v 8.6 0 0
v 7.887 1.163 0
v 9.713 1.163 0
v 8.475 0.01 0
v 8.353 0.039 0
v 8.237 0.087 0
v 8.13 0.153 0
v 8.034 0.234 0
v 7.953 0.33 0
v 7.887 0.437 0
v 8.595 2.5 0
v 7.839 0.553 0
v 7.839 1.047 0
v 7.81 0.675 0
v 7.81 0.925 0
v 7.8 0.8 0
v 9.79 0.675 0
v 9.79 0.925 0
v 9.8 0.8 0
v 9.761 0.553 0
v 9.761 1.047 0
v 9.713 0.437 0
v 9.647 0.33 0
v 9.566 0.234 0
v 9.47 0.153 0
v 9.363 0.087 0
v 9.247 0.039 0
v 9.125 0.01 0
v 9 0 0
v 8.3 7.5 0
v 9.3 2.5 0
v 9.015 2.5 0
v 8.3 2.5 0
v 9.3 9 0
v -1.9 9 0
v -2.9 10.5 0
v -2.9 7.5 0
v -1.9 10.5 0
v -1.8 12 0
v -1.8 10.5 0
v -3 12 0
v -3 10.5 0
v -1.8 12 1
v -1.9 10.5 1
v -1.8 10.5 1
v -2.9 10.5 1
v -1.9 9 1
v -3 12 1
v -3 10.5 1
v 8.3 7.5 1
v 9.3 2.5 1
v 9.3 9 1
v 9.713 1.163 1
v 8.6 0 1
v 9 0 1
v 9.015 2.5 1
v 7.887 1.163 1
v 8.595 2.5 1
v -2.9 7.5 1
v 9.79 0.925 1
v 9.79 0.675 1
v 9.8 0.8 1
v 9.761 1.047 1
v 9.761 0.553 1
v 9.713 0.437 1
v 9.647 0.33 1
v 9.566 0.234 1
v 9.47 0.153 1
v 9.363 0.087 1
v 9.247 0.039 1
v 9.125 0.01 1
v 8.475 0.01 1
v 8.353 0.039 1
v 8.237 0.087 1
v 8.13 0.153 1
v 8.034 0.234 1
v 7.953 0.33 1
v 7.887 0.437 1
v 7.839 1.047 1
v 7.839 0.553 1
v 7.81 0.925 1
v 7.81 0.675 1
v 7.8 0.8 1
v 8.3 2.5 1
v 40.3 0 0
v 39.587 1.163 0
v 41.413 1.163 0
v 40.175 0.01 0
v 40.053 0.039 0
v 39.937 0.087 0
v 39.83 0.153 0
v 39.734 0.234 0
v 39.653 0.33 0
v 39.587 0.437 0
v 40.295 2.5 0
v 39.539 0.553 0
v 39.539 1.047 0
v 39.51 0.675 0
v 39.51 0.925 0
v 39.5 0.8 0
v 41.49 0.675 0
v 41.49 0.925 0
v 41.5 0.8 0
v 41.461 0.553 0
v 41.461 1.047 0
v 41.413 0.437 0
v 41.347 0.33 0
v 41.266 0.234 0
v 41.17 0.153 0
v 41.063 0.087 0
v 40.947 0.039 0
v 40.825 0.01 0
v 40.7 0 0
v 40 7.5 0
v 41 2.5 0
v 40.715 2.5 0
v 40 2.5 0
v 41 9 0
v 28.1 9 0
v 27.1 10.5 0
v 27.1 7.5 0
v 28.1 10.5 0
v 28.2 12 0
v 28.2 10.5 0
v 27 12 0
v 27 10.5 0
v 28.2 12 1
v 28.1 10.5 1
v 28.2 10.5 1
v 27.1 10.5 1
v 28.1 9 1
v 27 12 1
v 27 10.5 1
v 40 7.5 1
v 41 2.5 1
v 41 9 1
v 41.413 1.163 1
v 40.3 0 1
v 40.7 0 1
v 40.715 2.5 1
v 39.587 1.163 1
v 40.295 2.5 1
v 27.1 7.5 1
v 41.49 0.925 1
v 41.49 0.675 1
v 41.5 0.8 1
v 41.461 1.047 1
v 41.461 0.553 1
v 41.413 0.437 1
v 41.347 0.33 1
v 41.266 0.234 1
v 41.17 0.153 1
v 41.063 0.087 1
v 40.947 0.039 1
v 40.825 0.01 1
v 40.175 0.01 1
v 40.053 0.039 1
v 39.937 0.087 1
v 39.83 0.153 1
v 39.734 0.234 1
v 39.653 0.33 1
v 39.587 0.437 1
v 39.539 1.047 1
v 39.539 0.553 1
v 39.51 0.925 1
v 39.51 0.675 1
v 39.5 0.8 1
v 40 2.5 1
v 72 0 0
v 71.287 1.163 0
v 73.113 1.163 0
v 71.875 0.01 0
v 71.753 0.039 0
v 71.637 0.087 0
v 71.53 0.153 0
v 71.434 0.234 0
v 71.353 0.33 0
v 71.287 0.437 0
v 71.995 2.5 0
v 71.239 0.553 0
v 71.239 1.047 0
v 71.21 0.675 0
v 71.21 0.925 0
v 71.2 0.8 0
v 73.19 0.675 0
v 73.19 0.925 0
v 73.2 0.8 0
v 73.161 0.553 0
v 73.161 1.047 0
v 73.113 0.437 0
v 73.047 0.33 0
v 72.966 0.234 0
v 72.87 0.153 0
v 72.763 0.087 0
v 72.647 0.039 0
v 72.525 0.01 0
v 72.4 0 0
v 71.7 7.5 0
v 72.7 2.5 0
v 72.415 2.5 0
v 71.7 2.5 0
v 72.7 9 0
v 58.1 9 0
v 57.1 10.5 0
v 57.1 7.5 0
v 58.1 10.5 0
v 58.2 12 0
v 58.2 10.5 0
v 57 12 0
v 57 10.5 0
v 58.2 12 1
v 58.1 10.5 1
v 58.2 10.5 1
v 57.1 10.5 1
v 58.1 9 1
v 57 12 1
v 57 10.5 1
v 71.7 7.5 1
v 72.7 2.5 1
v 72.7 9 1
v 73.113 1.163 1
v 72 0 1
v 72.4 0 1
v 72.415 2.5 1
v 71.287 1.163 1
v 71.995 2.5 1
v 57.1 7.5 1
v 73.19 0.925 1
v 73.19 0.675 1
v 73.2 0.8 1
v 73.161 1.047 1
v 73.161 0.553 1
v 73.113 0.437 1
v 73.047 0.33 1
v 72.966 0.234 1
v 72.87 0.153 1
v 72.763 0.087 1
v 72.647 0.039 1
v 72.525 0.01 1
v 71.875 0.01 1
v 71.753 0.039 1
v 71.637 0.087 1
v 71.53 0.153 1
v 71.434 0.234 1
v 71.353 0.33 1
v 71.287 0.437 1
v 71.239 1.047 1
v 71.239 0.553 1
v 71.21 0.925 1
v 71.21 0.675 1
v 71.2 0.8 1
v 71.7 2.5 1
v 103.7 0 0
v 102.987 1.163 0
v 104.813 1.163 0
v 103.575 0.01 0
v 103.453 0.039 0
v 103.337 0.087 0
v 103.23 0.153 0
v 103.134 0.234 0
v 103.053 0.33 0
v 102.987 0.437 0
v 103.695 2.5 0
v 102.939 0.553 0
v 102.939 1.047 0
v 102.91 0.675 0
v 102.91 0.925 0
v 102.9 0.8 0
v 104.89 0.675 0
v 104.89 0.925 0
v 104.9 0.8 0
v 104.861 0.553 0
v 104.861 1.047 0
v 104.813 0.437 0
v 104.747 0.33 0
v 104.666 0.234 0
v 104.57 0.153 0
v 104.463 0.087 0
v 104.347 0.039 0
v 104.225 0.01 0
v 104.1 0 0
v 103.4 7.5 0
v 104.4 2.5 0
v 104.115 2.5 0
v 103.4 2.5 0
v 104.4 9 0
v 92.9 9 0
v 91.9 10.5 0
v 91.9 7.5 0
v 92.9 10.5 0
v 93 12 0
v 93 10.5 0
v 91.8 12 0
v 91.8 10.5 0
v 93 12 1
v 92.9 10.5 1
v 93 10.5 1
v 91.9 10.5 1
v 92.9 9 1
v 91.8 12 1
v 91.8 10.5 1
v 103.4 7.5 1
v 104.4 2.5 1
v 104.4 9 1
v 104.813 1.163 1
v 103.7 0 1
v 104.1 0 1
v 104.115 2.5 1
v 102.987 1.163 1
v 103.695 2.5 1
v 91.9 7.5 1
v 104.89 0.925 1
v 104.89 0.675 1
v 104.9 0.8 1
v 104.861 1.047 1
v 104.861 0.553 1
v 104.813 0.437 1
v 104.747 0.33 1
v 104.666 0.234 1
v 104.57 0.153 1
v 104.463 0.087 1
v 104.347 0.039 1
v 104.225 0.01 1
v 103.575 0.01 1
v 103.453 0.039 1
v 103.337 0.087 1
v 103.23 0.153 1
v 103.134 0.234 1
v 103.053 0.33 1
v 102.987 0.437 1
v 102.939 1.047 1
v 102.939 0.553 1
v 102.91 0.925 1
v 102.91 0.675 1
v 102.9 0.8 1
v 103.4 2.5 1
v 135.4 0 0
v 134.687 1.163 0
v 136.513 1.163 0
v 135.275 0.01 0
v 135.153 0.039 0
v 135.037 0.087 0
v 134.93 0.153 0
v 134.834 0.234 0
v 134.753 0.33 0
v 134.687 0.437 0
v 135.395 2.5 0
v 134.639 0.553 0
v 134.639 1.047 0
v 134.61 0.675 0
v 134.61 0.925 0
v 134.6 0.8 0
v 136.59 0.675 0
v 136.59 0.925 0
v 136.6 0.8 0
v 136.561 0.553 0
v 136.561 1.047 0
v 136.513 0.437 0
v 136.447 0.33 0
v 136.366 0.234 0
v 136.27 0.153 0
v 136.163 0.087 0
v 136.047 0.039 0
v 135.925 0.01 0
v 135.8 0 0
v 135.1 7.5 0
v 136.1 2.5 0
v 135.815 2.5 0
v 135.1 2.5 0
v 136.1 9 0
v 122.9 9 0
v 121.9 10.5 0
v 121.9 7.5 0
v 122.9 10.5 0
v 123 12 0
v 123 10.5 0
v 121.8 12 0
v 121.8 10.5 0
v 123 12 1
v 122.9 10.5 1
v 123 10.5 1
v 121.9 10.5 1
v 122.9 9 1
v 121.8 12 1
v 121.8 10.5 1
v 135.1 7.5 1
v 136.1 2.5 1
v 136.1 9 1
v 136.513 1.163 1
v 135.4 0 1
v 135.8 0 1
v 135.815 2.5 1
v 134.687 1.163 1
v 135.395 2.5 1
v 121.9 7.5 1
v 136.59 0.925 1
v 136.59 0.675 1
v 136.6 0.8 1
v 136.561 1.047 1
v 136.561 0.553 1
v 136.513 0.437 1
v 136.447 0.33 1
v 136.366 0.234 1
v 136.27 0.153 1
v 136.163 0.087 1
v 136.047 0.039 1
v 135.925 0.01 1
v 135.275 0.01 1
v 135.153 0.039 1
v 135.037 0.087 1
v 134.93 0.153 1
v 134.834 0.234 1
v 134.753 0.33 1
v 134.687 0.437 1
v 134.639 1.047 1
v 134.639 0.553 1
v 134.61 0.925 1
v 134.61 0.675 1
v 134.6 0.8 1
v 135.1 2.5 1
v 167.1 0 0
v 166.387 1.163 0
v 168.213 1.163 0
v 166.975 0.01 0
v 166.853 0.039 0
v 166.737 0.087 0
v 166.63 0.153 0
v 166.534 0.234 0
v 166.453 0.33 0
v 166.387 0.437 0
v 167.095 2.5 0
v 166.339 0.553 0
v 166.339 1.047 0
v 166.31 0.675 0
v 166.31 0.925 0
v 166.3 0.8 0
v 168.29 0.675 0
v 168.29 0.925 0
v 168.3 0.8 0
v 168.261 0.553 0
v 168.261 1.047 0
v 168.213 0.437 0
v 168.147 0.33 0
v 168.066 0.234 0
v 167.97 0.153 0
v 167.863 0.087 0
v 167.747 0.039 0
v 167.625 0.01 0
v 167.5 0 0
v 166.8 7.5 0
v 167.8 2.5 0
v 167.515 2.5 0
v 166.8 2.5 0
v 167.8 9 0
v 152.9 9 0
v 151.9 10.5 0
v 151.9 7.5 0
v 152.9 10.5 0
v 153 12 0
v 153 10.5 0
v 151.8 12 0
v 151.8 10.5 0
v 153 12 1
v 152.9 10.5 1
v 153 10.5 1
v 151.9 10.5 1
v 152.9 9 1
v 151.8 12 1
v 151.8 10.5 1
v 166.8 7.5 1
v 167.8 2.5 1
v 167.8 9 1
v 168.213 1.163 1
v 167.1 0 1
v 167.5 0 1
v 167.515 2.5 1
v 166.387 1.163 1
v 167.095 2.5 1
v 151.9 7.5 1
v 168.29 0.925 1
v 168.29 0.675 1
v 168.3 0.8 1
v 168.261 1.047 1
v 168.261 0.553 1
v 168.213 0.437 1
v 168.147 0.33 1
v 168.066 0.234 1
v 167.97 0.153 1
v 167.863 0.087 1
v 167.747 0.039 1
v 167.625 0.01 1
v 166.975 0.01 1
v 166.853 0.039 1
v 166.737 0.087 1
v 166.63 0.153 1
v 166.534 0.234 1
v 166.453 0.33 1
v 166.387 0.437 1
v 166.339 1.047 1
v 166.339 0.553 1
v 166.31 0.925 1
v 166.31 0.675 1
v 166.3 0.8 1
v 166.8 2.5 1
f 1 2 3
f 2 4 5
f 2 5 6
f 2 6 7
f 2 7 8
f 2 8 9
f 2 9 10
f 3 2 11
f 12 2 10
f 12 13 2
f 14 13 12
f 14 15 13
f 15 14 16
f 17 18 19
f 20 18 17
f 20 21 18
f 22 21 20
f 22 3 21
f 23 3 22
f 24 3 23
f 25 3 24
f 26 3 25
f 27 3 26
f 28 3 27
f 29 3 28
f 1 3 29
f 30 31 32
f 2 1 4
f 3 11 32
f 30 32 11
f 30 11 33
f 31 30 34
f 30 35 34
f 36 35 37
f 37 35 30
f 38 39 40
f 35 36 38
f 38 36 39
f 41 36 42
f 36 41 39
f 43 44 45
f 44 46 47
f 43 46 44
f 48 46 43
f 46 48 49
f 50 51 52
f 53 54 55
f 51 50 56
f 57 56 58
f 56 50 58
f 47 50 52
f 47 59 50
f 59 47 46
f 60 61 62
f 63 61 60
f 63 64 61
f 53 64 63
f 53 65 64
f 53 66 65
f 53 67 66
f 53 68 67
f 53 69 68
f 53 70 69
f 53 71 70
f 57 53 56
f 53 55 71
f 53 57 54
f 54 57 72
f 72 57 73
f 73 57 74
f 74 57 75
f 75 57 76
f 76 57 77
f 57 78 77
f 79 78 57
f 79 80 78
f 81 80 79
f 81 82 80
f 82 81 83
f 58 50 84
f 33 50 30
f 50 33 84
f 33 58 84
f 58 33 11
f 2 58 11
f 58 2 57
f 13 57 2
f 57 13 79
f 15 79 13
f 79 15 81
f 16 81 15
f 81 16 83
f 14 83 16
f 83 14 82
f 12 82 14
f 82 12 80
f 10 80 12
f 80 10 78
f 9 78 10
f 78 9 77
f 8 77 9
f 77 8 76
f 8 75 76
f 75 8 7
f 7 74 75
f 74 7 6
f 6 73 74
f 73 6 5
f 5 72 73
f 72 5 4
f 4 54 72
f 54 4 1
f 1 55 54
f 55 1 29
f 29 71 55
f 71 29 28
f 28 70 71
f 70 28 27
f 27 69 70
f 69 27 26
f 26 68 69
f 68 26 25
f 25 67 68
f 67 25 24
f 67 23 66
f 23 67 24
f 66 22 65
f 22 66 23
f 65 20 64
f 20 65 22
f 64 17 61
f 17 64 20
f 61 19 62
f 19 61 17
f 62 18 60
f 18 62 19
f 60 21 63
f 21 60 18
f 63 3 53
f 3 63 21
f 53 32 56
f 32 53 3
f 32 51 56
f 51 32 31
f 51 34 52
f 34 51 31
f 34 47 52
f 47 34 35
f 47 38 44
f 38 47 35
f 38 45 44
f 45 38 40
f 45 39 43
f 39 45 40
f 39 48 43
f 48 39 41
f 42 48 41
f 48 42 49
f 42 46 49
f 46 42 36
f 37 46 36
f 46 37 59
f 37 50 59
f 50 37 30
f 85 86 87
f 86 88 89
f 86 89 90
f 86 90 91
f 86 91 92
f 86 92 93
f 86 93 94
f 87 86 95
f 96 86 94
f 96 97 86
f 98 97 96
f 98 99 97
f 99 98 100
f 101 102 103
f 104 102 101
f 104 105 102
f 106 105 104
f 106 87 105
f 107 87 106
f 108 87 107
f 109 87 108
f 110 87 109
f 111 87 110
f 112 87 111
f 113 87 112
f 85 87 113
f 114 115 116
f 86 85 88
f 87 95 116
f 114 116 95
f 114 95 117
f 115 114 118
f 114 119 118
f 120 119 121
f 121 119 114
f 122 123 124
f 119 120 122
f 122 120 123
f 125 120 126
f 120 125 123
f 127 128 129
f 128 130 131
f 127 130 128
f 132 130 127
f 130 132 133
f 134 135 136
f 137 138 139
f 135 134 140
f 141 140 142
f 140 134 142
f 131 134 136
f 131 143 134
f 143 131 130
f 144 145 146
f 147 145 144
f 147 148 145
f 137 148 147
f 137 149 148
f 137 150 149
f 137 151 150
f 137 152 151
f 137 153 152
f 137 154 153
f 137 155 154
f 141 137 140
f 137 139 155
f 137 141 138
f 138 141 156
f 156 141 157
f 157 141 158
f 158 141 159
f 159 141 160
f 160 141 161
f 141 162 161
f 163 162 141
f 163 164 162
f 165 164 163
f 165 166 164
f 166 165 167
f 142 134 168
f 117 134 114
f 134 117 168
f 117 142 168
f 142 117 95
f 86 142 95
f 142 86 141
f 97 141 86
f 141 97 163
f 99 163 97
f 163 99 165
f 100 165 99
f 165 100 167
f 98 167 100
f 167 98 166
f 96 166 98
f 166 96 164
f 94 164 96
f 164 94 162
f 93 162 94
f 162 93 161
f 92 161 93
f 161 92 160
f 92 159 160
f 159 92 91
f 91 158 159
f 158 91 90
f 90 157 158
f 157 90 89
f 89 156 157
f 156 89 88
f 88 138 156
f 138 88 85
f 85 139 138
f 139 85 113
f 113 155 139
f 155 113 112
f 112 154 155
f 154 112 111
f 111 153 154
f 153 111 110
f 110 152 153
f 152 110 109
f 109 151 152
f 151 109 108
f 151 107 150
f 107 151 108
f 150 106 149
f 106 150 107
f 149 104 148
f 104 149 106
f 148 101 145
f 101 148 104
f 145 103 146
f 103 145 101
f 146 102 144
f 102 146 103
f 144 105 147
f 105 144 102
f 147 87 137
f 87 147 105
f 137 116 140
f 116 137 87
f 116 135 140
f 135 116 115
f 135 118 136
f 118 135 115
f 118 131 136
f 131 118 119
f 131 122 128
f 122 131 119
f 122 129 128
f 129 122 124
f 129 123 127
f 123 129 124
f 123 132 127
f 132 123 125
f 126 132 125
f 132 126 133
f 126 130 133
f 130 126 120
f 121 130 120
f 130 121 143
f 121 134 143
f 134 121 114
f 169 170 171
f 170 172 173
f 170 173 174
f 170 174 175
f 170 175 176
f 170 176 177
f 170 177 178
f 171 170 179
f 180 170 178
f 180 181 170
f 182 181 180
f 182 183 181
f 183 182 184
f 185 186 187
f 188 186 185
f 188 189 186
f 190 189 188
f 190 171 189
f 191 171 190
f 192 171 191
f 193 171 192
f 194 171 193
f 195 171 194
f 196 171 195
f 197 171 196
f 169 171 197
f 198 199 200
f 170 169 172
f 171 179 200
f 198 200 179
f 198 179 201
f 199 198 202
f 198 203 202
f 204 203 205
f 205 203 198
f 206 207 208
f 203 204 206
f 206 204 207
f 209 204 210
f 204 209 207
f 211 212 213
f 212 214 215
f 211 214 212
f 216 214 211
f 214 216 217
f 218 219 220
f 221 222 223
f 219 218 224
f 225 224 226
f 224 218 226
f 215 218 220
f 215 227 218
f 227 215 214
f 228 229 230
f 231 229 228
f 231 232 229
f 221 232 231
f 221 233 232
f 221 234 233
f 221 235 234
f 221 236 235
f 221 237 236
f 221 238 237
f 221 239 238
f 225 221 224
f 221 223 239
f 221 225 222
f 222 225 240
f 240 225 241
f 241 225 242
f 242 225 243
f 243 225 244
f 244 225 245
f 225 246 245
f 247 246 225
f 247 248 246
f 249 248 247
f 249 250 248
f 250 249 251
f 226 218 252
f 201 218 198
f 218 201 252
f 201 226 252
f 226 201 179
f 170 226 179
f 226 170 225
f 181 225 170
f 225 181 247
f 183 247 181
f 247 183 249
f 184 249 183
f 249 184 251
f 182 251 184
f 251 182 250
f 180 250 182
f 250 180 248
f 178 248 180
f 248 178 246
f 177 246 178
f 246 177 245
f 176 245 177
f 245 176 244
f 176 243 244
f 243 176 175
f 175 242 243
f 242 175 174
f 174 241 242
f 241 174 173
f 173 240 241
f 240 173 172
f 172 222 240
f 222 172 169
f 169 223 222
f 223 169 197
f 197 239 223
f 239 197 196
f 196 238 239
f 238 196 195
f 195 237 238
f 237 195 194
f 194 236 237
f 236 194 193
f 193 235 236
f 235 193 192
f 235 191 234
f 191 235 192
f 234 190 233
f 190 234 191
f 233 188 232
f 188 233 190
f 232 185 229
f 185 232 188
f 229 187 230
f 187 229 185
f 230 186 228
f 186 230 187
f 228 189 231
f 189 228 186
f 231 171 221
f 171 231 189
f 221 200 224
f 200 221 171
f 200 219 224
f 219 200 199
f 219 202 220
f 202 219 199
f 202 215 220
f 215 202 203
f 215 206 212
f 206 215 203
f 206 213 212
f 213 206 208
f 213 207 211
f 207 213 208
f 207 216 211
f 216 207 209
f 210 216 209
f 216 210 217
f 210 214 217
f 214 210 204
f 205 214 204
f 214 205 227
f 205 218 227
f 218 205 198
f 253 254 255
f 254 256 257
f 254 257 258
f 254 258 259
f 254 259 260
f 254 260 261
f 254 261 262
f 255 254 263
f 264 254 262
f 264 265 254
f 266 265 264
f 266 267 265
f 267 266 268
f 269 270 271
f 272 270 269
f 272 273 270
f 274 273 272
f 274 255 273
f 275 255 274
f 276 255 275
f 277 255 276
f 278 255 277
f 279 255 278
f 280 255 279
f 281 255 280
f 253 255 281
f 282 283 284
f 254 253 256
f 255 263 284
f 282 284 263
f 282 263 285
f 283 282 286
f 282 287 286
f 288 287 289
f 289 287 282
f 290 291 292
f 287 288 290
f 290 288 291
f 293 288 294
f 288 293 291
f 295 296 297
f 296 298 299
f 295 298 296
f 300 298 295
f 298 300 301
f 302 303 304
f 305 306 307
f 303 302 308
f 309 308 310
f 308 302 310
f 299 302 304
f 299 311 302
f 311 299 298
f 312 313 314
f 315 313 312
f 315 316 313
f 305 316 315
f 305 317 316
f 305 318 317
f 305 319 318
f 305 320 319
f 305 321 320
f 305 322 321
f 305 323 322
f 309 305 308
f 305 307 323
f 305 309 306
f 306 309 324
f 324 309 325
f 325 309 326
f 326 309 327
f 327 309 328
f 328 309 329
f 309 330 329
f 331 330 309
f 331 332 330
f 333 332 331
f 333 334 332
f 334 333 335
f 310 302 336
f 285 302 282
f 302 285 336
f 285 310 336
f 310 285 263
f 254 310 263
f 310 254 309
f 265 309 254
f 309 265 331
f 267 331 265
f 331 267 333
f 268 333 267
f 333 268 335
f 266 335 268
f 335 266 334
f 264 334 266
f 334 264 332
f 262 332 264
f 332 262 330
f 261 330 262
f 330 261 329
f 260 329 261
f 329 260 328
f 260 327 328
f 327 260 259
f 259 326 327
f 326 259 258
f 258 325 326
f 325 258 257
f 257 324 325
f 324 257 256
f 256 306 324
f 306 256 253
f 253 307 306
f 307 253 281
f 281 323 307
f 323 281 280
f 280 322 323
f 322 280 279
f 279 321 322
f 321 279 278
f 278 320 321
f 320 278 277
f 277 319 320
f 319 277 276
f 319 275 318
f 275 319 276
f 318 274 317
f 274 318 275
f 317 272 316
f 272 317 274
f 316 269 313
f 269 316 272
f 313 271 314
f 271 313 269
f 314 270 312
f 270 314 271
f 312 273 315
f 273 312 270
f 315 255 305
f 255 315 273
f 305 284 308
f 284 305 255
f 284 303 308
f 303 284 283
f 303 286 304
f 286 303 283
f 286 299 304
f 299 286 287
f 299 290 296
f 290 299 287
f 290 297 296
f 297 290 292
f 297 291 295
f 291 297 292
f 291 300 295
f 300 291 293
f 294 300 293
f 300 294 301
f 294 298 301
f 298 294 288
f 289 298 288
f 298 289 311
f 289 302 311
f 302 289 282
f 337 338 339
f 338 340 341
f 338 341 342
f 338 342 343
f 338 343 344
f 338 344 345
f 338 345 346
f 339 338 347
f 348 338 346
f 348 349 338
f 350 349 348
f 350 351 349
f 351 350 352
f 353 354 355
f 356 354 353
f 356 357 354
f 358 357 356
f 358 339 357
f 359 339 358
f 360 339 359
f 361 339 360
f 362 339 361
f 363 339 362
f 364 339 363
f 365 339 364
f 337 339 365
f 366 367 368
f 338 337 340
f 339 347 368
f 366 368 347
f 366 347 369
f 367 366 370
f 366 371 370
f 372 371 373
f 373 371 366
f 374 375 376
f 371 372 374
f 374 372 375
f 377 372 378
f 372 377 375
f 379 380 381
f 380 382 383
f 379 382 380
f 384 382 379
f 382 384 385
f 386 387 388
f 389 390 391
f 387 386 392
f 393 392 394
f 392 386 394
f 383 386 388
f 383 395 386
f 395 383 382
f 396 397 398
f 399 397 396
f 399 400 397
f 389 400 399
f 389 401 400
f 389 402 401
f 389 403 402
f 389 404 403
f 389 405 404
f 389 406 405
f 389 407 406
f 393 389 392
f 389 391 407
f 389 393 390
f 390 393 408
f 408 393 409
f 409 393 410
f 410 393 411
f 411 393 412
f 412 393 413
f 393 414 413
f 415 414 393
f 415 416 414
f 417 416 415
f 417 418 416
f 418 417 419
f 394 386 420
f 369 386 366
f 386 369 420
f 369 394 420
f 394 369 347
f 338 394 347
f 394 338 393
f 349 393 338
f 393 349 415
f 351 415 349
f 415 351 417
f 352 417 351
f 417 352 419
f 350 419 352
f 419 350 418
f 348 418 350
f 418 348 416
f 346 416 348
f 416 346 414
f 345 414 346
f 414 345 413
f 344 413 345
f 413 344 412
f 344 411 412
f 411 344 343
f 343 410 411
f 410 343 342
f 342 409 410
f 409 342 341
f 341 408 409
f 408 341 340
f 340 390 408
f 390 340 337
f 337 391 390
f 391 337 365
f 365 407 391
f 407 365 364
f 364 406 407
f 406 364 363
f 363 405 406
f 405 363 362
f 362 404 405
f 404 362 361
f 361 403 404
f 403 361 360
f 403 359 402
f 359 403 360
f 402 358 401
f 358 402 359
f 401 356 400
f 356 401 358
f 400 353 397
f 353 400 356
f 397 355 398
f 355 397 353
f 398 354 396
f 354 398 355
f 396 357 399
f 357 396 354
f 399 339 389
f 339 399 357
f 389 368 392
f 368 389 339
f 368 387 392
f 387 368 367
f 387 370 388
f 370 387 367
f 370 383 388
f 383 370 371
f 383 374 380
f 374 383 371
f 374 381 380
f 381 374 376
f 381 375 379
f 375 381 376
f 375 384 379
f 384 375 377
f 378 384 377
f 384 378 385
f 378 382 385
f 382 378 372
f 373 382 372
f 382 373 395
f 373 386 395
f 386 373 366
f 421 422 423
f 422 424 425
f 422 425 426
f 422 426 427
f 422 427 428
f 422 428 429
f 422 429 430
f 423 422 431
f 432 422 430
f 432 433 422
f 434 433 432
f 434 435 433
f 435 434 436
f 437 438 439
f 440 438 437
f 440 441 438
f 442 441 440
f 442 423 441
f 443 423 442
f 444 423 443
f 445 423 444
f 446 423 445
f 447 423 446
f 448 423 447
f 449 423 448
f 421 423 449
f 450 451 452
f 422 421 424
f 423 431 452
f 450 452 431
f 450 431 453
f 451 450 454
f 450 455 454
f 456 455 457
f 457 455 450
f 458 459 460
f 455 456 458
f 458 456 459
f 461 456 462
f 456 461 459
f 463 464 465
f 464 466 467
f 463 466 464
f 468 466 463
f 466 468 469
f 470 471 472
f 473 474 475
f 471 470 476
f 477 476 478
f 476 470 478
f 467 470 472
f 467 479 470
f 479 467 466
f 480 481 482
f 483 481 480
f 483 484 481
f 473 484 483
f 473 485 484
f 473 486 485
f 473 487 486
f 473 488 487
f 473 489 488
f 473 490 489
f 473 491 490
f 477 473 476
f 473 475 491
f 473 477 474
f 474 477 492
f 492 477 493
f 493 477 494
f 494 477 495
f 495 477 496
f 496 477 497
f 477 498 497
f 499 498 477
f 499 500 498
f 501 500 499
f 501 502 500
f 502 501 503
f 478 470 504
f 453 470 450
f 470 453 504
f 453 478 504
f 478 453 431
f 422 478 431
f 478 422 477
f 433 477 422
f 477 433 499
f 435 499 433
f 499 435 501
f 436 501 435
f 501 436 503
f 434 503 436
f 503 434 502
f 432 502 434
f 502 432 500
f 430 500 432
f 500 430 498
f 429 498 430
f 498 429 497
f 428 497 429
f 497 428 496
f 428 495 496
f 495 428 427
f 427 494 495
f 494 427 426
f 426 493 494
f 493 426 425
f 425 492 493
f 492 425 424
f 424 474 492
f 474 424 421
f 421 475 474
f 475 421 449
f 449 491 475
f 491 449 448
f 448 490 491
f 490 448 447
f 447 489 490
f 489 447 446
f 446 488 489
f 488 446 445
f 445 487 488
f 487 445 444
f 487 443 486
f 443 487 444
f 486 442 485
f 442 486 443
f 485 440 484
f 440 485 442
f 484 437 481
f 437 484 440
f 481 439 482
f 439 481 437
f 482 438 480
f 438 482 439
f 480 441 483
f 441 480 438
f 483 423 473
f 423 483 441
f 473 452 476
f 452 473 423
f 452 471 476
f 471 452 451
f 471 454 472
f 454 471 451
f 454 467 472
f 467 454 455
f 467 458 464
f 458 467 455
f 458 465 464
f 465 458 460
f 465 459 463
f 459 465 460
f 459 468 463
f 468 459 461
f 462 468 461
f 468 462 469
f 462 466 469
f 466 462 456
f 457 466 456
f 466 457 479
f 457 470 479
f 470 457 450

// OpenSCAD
// =========================================================
// BRAILLIX LINKAGE SET — Laser-Cut Metal Cranks
// 6 stair-step flat metal pieces (1mm thick stainless/aluminium)
// that bridge each concentric cam track to its Braille dot slot.
//
// PRINT INTENT: These are NOT 3D-printed.
// Export as DXF from OpenSCAD (File > Export > DXF) for laser cutting.
// Material: 1mm stainless steel or 1mm aluminium sheet.
// Post-processing: sand foot tip smooth, lubricate with silicone grease.
// =========================================================

// --- 1. PARAMETERS ---

thickness     = 1.0;   // Sheet metal thickness (mm)
foot_w        = 2.0;   // Foot width (glides on cam track)
foot_len      = 2.5;   // Foot length (contact patch)
foot_radius   = 0.8;   // Rounded tip radius (minimise wear on resin cam)
riser_h       = 9.0;   // Vertical riser height (clears cam disc + base plate top surface)
nub_w         = 1.2;   // Top nub width — must match top_plate slot_width exactly
nub_len       = 2.0;   // Top nub length
nub_h         = 1.5;   // Top nub height (protrudes above top plate surface)
arm_h         = 1.5;   // Horizontal arm thickness

// Cam track geometry (must match braille_cam2.scad)
track_width   = 1.6;
track_gap     = 0.1;
inner_radius  = 8.0;

// Braille dot positions (must match top_plate.scad col/row spacing)
col_spacing   = 4.8;   // ±2.4mm from centre
row_spacing   = 2.6;   // +2.6, 0, -2.6mm

// Derived: centre radius of each track
function track_r(t) = inner_radius + t * (track_width + track_gap) + track_width / 2;

// Dot x positions: dots 1-3 on left column, dots 4-6 on right
function dot_x(dot) = (dot < 3) ? -col_spacing/2 : col_spacing/2;
function dot_y(dot) = (dot == 0 || dot == 3) ?  row_spacing :
                      (dot == 1 || dot == 4) ?  0 :
                                                -row_spacing;

// Track assignment: dot 0→track 0 (innermost), dot 5→track 5 (outermost)
function dot_track(dot) = dot;

$fn = 40;

// --- 2. MODULES ---

// One complete linkage rendered as a flat 2D profile extruded to thickness.
// origin = foot bottom-centre, x = horizontal, y = vertical (up = towards top plate)
// The foot rests on the cam track; the nub protrudes through the top plate slot.
//
// Parameters:
//   tr   — cam track centre radius (where the foot sits)
//   dx   — Braille dot x position (offset from cell centreline)

module linkage_2d(tr, dx) {
    // Calculate horizontal arm reach: from track centre to dot column
    arm_x = dx - 0;   // dx is already the absolute x of the dot column

    // Foot (centred at x=tr, y=0)
    // Riser bottom to top: y=0 to y=riser_h
    // Horizontal arm: at y=riser_h, spanning from x=tr to x=dx
    // Second riser: x=dx, from y=riser_h up to y=riser_h+nub_h+arm_h
    // Nub: top nub_h at x=dx, width=nub_w

    union() {
        // Foot — rounded rectangle at bottom
        translate([tr - foot_w/2, 0])
            hull() {
                translate([foot_radius, foot_radius])       circle(r=foot_radius);
                translate([foot_w - foot_radius, foot_radius]) circle(r=foot_radius);
                translate([foot_radius, foot_len])           square([foot_w - 2*foot_radius, 0.01]);
                translate([foot_w - foot_radius, foot_len])  square([0.01, 0.01]);
            }

        // Vertical riser (lower) — from foot top to horizontal arm
        translate([tr - thickness/2, foot_len])
            square([thickness, riser_h - foot_len]);

        // Horizontal arm — connects lower riser to upper riser at dx
        x_lo = min(tr, dx) - thickness/2;
        x_hi = max(tr, dx) + thickness/2;
        translate([x_lo, riser_h - arm_h])
            square([x_hi - x_lo, arm_h]);

        // Vertical riser (upper) — from horizontal arm to nub base
        translate([dx - thickness/2, riser_h])
            square([thickness, arm_h]);

        // Nub — fits into top_plate rectangular slot (width = nub_w)
        translate([dx - nub_w/2, riser_h + arm_h])
            square([nub_w, nub_h]);
    }
}

// 3D render (1mm thick extrusion) — for visual preview in OpenSCAD
module linkage_3d(tr, dx) {
    linear_extrude(height=thickness)
        linkage_2d(tr, dx);
}

// --- 3. GENERATE ALL 6 LINKAGES ---
// For DXF export: all 6 laid flat side-by-side with 3mm spacing.
// For assembly preview: comment the flat layout and use the positioned version below.

// ----- FLAT LAYOUT (use this for DXF export) -----
spacing = 30;   // mm between linkages on DXF sheet

for(dot = [0:5]) {
    tr = track_r(dot_track(dot));
    dx = dot_x(dot);
    translate([dot * spacing, 0, 0])
        linkage_3d(tr, dx);
}

// ----- ASSEMBLY PREVIEW (comment out above, uncomment below for visualisation) -----
// Positions each linkage at its correct x offset for assembly check.
// The foot should sit at the correct cam track radius.
//
// for(dot = [0:5]) {
//     tr = track_r(dot_track(dot));
//     dx = dot_x(dot);
//     color( (dot<3) ? "silver" : "lightgray" )
//     translate([0, 0, 0])
//         linkage_3d(tr, dx);
// }

// --- 4. REFERENCE TABLE ---
// Linkage | Track # | Track centre radius | Dot   | Dot X  | Dot Y
//    0    |    0    |     8.85 mm         | dot1  | -2.4mm | +2.6mm
//    1    |    1    |    10.55 mm         | dot2  | -2.4mm |  0 mm
//    2    |    2    |    12.25 mm         | dot3  | -2.4mm | -2.6mm
//    3    |    3    |    13.95 mm         | dot4  | +2.4mm | +2.6mm
//    4    |    4    |    15.65 mm         | dot5  | +2.4mm |  0 mm
//    5    |    5    |    17.35 mm         | dot6  | +2.4mm | -2.6mm
